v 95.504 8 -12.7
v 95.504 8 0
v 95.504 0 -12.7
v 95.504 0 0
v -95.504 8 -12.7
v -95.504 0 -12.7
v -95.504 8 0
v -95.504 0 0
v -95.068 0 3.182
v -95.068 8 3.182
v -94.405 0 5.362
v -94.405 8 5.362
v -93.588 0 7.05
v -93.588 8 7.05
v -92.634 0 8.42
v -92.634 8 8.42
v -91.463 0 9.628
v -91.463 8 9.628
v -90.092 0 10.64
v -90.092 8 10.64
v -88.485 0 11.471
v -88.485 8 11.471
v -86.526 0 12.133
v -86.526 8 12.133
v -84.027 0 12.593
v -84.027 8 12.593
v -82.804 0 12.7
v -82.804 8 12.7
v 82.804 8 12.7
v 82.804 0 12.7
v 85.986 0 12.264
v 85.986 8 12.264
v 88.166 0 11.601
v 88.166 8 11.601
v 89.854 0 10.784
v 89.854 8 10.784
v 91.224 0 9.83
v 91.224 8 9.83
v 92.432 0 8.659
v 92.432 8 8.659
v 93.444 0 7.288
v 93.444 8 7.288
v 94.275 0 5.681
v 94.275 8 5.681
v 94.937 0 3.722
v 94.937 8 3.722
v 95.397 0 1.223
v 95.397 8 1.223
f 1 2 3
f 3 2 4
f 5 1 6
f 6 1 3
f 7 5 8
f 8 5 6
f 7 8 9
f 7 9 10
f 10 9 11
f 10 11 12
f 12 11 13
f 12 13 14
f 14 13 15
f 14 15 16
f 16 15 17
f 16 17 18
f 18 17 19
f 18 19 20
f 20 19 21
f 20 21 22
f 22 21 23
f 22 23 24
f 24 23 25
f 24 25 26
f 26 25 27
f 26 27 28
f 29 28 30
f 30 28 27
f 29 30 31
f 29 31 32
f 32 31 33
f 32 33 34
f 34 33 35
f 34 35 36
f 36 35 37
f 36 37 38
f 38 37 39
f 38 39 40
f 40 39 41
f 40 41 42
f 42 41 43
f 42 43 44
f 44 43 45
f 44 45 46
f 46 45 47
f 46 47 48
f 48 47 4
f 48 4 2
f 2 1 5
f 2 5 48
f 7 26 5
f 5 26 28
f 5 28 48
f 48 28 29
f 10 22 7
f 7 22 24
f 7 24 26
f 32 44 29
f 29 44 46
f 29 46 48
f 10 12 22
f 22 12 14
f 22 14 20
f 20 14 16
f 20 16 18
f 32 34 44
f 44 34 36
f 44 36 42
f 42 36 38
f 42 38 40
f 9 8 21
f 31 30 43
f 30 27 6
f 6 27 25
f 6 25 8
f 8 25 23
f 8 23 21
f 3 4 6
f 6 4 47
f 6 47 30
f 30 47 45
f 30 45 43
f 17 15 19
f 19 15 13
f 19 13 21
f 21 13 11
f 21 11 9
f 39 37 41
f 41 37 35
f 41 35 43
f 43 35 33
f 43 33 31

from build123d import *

# Parameters (mm, degrees)
BOSS_EXTRUDE1_DEPTH = 8


with BuildPart() as part:
    # Sketch1 → Boss-Extrude1 (new body)
    with BuildSketch(Plane(origin=(0, 0, 0), x_dir=(1, 0, 0), z_dir=(0, 1, 0))):
        with BuildLine():
            Line((-82.804, -12.7), (82.804, -12.7))
            add(Edge.make_bspline(
                [(82.804, -12.7), (94.773722487, -11.969722487), (95.504, 0)],
                knots=[0, 0, 0, 1, 1, 1], degree=2))
            Line((95.504, 0), (95.504, 12.7))
            Line((95.504, 12.7), (-95.504, 12.7))
            Line((-95.504, 12.7), (-95.504, 0))
            add(Edge.make_bspline(
                [(-82.804, -12.7), (-94.773722487, -11.969722487), (-95.504, 0)],
                knots=[0, 0, 0, 1, 1, 1], degree=2))
        make_face()
    extrude(amount=BOSS_EXTRUDE1_DEPTH)


solid = part.part
